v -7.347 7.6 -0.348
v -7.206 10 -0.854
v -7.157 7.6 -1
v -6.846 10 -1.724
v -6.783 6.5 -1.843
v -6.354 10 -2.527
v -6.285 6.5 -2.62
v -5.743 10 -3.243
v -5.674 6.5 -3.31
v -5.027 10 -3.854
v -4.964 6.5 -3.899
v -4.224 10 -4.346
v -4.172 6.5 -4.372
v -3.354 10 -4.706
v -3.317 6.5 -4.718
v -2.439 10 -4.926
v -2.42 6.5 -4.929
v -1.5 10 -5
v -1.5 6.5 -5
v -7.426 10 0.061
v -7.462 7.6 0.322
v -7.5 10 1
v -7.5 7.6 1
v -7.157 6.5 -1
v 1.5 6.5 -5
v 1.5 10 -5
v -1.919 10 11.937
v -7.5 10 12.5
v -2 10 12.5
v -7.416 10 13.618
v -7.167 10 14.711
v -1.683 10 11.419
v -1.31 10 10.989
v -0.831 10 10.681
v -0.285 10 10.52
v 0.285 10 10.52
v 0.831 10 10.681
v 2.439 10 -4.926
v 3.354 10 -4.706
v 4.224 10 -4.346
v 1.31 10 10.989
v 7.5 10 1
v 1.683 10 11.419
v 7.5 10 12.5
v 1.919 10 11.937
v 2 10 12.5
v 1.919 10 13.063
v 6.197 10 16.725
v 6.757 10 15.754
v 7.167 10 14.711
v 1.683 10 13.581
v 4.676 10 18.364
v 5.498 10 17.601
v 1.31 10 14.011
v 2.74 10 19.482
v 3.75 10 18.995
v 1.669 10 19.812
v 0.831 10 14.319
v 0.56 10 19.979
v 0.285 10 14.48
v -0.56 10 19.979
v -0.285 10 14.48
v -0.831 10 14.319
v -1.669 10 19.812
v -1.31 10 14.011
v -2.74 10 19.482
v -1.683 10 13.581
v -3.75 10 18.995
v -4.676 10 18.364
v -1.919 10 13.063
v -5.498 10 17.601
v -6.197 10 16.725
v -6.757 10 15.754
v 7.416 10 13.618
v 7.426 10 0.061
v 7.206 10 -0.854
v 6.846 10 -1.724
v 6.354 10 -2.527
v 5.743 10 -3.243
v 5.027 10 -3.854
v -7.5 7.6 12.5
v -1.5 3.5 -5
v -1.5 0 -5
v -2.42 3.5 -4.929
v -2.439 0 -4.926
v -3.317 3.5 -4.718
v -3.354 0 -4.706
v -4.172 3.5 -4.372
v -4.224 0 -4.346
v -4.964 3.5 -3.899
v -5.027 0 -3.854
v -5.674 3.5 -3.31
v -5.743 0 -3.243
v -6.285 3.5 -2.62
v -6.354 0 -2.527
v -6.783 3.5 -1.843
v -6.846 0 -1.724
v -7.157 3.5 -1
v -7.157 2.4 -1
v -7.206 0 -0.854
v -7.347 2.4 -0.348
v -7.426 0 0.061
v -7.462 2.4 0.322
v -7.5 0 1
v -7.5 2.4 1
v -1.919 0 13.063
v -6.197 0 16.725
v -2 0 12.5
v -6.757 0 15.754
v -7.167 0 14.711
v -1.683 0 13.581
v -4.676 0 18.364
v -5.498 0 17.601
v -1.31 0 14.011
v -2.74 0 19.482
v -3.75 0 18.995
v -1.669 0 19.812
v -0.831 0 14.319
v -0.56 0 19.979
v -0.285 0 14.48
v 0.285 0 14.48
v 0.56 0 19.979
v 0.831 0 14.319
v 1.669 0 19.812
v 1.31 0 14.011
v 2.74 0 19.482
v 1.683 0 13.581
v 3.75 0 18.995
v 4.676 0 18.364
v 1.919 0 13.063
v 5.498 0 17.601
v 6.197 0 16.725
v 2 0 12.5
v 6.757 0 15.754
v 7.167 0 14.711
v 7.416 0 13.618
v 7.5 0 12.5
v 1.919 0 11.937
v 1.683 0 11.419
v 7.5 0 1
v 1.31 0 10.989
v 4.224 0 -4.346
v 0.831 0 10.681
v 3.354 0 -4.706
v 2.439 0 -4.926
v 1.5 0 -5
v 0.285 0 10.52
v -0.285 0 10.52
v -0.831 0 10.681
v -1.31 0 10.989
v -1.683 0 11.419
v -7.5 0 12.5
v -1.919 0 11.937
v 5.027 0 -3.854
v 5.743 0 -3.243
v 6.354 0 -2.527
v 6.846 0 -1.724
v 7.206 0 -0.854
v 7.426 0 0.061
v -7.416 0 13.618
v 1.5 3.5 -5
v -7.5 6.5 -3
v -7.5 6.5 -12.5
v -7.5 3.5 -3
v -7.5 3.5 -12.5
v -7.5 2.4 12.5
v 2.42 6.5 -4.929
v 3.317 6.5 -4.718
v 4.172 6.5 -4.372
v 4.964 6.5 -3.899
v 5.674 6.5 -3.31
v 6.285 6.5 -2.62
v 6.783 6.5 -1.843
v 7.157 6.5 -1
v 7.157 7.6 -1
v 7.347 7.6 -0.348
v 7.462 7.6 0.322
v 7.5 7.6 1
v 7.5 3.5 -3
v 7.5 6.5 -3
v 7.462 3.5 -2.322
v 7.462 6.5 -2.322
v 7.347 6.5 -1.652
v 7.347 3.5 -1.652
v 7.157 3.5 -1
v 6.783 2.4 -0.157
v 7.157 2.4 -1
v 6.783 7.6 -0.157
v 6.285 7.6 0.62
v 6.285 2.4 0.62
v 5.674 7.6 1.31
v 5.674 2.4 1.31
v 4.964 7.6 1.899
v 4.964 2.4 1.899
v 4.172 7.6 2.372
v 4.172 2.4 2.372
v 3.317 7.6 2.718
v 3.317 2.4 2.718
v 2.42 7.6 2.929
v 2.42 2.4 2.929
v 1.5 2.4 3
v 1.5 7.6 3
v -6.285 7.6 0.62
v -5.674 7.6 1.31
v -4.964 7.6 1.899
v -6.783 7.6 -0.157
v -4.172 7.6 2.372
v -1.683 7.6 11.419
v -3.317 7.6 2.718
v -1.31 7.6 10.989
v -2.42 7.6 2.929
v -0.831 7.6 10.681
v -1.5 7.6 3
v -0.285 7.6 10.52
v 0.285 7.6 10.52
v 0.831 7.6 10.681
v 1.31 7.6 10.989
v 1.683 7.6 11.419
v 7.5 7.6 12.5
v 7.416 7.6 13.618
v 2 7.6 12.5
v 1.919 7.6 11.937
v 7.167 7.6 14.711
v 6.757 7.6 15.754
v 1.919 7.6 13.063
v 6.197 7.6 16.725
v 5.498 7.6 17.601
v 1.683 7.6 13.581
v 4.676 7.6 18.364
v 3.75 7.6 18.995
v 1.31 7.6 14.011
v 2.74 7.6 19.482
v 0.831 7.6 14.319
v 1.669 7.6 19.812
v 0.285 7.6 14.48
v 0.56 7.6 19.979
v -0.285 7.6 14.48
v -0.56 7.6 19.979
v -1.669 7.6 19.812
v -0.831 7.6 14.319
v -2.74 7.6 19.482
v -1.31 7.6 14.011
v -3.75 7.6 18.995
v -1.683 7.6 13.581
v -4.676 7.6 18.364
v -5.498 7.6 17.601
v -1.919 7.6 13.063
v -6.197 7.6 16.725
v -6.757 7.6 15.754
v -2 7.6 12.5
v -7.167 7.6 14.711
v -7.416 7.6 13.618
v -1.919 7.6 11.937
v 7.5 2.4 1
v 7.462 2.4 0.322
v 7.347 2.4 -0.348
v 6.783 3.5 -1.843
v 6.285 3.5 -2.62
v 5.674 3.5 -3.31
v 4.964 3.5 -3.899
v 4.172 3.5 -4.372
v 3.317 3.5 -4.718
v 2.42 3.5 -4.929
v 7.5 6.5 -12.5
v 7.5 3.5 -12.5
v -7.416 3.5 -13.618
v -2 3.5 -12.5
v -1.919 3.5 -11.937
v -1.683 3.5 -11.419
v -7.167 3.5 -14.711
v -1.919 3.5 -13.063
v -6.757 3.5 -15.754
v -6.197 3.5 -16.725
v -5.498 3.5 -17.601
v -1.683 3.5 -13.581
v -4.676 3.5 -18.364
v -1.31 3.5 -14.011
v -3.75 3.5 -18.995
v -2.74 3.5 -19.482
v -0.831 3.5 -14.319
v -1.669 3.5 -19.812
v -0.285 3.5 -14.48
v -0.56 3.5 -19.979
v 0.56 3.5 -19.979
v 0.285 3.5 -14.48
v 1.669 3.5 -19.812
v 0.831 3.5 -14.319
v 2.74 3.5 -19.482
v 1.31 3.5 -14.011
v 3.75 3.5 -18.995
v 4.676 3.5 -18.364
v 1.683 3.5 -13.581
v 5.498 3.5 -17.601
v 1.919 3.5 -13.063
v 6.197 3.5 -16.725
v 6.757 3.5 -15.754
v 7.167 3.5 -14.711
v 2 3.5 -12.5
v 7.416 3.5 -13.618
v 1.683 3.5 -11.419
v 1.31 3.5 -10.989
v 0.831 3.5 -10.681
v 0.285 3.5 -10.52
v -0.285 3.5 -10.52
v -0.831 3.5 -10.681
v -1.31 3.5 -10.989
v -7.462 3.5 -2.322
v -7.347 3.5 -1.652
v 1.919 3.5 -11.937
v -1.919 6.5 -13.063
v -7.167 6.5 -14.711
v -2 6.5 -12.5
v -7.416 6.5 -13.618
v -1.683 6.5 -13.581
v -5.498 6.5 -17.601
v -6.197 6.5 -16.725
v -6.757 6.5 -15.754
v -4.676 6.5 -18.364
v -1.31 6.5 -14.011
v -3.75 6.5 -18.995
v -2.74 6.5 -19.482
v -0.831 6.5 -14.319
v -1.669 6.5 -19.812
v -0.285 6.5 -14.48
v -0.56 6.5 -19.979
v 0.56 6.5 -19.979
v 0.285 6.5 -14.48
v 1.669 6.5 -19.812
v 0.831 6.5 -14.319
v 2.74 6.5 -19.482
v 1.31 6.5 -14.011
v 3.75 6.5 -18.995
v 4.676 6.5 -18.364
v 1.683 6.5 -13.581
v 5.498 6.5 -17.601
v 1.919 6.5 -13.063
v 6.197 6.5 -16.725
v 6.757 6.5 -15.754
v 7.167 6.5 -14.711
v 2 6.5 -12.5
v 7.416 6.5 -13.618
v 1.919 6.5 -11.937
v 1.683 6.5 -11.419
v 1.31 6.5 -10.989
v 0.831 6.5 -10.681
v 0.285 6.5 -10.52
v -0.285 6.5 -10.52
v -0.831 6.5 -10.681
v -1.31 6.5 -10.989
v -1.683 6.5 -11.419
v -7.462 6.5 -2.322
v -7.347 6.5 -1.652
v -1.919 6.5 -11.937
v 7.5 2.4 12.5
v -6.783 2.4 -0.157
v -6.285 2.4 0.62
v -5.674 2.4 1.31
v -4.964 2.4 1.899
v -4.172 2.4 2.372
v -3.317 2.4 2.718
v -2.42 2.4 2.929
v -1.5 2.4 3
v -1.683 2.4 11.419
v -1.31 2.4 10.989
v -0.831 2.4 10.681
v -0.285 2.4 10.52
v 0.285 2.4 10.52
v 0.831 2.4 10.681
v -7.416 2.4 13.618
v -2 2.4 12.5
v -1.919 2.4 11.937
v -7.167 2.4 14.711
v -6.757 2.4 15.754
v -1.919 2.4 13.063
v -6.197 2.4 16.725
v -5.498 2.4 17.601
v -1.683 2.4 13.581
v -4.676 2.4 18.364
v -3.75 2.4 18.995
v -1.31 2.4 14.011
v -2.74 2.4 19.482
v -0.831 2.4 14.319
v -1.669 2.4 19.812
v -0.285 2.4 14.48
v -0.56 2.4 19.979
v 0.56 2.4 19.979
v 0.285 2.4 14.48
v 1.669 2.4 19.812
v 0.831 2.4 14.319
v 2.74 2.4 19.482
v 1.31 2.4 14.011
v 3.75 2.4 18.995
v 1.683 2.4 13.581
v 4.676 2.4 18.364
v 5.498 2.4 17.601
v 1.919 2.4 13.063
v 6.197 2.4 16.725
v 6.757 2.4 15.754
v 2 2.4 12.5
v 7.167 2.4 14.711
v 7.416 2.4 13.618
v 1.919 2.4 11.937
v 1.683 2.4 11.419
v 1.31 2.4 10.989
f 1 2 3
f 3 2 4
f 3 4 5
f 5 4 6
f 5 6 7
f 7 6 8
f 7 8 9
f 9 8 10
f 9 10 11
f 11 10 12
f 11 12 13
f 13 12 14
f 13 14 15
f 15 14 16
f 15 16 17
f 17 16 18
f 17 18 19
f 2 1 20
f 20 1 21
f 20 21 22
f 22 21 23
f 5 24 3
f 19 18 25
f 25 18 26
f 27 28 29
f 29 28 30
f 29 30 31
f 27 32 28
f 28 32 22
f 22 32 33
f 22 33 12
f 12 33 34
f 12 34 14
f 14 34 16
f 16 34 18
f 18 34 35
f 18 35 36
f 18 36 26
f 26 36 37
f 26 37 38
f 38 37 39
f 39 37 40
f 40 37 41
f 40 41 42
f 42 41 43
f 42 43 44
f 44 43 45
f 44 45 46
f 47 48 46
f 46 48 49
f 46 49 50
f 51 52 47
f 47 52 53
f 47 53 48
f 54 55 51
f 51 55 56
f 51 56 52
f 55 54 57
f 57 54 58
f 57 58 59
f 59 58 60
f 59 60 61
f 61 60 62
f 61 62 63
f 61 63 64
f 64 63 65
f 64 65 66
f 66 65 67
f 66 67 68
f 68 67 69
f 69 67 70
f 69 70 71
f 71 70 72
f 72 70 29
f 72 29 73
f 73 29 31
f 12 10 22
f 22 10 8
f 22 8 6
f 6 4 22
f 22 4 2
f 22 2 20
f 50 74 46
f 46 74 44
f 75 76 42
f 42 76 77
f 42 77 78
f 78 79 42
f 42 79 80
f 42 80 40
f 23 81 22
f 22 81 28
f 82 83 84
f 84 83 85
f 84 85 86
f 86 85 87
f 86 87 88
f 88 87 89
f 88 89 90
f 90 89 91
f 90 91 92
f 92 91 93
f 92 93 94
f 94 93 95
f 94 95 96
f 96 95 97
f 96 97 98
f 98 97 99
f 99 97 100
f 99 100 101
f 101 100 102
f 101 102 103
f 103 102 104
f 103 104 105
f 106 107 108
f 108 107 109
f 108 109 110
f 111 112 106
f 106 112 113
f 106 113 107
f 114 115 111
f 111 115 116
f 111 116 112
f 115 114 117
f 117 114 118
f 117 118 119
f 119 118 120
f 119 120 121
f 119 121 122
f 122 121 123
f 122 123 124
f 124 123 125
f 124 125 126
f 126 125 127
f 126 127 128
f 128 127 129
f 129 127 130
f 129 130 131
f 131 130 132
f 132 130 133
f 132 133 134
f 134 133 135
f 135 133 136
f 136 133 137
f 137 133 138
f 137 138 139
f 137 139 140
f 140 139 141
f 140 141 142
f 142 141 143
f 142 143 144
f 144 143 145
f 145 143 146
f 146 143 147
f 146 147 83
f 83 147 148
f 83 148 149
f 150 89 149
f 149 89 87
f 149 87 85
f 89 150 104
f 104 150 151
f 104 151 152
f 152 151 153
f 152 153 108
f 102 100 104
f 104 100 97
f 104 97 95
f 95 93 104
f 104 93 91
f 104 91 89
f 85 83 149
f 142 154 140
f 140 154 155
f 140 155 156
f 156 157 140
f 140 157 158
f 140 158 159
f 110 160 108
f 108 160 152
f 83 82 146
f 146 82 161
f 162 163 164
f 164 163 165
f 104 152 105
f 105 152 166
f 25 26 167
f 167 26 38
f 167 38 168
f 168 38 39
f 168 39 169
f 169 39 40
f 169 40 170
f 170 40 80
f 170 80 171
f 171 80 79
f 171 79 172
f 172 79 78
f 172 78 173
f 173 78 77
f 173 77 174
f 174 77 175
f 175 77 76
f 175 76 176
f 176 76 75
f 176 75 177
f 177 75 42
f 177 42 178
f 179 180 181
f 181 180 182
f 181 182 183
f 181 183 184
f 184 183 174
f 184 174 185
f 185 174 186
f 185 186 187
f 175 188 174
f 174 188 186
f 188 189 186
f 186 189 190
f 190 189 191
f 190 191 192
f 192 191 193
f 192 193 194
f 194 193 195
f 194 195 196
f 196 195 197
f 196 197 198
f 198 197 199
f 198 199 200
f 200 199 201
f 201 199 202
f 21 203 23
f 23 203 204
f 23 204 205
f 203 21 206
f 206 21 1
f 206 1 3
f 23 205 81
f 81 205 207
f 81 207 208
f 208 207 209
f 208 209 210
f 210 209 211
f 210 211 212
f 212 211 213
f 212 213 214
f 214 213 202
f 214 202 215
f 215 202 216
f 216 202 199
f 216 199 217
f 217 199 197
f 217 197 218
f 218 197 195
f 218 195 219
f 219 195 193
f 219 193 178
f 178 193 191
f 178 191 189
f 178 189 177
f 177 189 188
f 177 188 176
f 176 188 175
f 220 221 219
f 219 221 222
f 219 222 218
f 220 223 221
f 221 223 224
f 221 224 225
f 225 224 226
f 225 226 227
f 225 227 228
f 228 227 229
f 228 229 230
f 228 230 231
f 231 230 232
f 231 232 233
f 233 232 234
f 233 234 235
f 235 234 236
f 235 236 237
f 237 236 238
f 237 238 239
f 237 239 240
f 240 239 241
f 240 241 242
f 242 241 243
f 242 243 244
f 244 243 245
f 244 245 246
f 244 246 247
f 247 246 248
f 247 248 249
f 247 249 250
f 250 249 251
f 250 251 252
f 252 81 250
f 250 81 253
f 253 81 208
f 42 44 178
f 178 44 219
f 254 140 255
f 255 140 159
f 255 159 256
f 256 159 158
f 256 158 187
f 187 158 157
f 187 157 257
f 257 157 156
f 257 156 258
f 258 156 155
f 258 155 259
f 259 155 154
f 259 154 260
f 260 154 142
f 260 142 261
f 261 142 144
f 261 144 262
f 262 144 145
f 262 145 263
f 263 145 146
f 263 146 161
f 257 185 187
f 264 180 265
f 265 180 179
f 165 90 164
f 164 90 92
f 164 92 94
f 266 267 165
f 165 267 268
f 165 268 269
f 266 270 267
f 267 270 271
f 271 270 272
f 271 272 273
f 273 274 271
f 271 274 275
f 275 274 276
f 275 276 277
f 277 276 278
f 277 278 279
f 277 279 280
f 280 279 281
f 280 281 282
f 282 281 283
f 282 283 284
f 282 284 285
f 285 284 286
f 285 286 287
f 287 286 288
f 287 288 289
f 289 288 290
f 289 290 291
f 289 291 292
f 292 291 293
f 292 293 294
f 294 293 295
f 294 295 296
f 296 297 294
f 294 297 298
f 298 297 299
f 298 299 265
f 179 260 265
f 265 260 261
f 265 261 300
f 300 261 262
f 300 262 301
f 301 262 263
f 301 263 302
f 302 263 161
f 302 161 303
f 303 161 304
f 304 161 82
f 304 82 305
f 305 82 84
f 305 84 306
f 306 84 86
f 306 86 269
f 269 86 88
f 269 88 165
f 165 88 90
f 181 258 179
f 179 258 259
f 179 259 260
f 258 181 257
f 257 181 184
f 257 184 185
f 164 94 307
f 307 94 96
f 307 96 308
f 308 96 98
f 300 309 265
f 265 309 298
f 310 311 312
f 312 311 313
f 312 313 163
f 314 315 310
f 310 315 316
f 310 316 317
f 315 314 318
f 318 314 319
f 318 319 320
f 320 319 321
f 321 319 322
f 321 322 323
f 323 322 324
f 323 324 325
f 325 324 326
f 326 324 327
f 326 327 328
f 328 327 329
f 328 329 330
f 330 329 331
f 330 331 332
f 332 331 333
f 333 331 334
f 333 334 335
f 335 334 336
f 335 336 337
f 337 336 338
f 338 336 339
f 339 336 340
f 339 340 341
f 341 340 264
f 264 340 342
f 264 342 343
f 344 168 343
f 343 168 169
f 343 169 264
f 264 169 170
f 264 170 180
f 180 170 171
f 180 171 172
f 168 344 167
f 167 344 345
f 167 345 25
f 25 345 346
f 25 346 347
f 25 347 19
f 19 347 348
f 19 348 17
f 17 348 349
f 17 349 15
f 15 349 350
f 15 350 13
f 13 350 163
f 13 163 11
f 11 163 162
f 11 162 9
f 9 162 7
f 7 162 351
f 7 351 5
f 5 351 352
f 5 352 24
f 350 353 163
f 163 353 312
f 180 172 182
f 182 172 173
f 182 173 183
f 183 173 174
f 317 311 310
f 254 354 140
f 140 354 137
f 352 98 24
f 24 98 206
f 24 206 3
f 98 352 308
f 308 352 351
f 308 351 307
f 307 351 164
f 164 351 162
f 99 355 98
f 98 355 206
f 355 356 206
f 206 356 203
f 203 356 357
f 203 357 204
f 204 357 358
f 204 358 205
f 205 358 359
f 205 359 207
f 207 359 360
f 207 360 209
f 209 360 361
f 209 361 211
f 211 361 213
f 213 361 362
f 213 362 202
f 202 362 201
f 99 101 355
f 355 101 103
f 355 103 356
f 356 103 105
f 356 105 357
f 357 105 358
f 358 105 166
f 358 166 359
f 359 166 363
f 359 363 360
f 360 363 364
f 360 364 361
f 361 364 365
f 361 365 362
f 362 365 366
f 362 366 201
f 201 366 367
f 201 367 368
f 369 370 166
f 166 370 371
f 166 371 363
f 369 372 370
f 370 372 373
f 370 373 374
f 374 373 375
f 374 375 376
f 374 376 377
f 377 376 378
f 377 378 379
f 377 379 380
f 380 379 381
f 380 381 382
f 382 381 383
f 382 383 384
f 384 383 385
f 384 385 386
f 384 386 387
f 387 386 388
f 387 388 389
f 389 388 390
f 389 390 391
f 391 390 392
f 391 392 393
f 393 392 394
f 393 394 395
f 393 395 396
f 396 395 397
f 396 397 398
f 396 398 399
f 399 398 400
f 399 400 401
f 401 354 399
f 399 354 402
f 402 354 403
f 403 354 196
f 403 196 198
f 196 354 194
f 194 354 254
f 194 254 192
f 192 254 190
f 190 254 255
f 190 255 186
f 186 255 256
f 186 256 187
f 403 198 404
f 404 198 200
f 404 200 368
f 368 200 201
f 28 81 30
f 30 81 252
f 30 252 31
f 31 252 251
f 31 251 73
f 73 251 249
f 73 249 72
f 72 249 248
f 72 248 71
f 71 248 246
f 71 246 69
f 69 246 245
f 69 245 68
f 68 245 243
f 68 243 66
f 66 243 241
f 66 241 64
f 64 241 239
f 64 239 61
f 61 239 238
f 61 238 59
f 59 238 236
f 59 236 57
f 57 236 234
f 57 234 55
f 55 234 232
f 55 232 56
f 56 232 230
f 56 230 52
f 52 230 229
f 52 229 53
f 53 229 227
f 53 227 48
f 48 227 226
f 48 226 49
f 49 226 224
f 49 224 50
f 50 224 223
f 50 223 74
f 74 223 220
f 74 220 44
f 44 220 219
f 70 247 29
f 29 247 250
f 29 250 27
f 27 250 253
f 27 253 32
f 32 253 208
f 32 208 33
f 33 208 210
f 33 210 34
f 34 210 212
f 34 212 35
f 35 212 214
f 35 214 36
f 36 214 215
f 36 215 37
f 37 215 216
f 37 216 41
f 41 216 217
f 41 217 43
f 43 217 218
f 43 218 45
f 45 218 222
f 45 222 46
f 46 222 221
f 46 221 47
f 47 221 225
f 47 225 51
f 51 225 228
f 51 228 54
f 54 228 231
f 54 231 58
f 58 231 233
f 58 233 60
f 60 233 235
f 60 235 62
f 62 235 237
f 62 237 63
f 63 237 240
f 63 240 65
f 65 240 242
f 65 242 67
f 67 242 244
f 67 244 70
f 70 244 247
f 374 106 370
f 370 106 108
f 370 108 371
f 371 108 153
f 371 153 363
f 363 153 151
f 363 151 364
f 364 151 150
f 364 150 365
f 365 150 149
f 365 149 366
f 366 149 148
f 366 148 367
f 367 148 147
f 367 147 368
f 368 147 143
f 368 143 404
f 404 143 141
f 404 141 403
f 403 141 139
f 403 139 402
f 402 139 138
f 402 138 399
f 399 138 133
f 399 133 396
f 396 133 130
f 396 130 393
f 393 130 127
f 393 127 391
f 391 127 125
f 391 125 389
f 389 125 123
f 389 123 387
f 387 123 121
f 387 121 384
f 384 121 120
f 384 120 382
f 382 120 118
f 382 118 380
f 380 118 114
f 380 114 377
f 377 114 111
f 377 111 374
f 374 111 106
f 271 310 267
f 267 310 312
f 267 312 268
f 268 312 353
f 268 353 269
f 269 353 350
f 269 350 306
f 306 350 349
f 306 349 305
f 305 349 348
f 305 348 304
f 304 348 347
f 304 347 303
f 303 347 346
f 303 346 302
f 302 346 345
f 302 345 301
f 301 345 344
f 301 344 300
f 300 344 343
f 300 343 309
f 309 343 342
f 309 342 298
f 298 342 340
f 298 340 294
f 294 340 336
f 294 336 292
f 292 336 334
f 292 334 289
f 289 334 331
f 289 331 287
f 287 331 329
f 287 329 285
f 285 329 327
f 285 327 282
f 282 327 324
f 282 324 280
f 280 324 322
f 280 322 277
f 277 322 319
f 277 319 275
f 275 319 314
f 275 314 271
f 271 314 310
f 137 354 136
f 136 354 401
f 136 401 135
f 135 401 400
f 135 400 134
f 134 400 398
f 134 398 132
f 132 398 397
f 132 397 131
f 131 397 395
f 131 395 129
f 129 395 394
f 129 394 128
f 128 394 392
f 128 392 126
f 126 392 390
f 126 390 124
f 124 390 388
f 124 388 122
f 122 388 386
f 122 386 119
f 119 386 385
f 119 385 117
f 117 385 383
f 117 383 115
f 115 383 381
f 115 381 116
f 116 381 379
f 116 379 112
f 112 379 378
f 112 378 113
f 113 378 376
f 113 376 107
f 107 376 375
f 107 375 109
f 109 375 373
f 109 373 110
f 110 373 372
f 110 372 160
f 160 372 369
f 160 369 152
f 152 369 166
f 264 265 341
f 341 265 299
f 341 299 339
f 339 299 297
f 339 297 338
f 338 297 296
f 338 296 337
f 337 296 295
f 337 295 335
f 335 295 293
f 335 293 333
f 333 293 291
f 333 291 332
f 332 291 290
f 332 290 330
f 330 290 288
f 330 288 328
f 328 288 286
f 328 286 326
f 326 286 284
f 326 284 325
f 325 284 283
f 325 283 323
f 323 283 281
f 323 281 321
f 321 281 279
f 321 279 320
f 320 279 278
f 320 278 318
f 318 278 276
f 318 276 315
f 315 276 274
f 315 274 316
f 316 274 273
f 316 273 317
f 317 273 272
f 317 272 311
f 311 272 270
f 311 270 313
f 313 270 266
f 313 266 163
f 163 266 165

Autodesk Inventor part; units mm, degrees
ref_plane "YZ Plane" through (0, 0, 0) normal (1, 0, 0) x (0, 1, 0)
ref_plane "XZ Plane" through (0, 0, 0) normal (0, 1, 0) x (-1, 0, 0)
ref_plane "XY Plane" through (0, 0, 0) normal (0, 0, 1) x (1, 0, 0)
sketch "Sketch1" plane through (0, 0, 0) normal (0, 1, 0) x (-1, 0, 0)
  line L0 (7.5, 20) -> (-7.5, 20)
  line L1 (-7.5, 20) -> (-7.5, -20)
  line L2 (-7.5, -20) -> (7.5, -20)
  line L3 (7.5, -20) -> (7.5, 20)
  circle A0 centre (0, -12.5) radius 7.5
  circle A1 centre (0, 12.5) radius 7.5
  circle A2 centre (0, 12.5) radius 2
  circle A3 centre (0, -12.5) radius 2
  point P0 (0, 0)
  point P1 (7.5, 0)
  point P2 (0, -20)
  point P3 (7.5, 12.5)
  point P4 (-7.5, 12.5)
  point P5 (-7.5, -12.5)
  point P6 (7.5, -12.5)
  dimension "d0" = 15
  dimension "d2" = 25
  dimension "d3" = 4
  dimension "d4" = 4
extrude "Extrusion1" add sketch "Sketch1" along normal blind 10 contours A1 | L3 A0 L1 A1 | A0
sketch "Sketch2" plane through (7.5, 0, 12.5) normal (1, 0, 0) x (0, 0, -1)
  line L0 (-7.5, 0) -> (-7.5, 10) projected
  line L1 (-7.5, 7.6) -> (9.5, 7.6)
  line L2 (9.5, 7.6) -> (9.5, 2.4)
  line L3 (9.5, 2.4) -> (-7.5, 2.4)
  line L4 (-7.5, 2.4) -> (-7.5, 7.6)
  point P0 (12.5, 0)
  point P1 (-7.5, 5)
  point P2 (-7.5, 5)
  dimension "d7" = 17
  dimension "d8" = 5.2
extrude "Extrusion2" cut sketch "Sketch2" against normal through all
fillet "Fillet1" radius 6 2 edges at (7.5, 5, 3) (-7.5, 5, 3)
sketch "Sketch4" plane through (7.5, 0, 12.5) normal (1, 0, 0) x (0, 0, -1)
  line L0 (32.5, 0) -> (32.5, 10) projected
  line L1 (32.5, 6.5) -> (17.5, 6.5)
  line L2 (17.5, 6.5) -> (17.5, 3.5)
  line L3 (17.5, 3.5) -> (32.5, 3.5)
  line L4 (32.5, 3.5) -> (32.5, 6.5)
  line L5 (15.5, 2.4) -> (15.5, 7.6) projected
  line L6 (0, 0) -> (25, 0) projected
  line L7 (32.5, 3.5) -> (17.5, 3.5)
  line L8 (17.5, 3.5) -> (17.5, 0)
  line L9 (17.5, 0) -> (32.5, 0)
  line L10 (32.5, 0) -> (32.5, 3.5)
  line L11 (25, 10) -> (0, 10) projected
  line L12 (32.5, 6.5) -> (17.5, 6.5)
  line L13 (17.5, 6.5) -> (17.5, 10)
  line L14 (17.5, 10) -> (32.5, 10)
  line L15 (32.5, 10) -> (32.5, 6.5)
  point P0 (12.5, 0)
  point P1 (17.5, 5)
  point P2 (15.5, 5)
  point P3 (17.5, 1.75)
  dimension "d15" = 3
  dimension "d16" = 15
extrude "Extrusion4" cut sketch "Sketch4" against normal through all contours L9 L6 L8 L3 L0 | L1 L13 L11 L14 L0
fillet "Fillet2" radius 6 4 edges at (7.5, 1.75, -5) (7.5, 8.25, -5) (-7.5, 1.75, -5) (-7.5, 8.25, -5)
properties part number "coupler"
